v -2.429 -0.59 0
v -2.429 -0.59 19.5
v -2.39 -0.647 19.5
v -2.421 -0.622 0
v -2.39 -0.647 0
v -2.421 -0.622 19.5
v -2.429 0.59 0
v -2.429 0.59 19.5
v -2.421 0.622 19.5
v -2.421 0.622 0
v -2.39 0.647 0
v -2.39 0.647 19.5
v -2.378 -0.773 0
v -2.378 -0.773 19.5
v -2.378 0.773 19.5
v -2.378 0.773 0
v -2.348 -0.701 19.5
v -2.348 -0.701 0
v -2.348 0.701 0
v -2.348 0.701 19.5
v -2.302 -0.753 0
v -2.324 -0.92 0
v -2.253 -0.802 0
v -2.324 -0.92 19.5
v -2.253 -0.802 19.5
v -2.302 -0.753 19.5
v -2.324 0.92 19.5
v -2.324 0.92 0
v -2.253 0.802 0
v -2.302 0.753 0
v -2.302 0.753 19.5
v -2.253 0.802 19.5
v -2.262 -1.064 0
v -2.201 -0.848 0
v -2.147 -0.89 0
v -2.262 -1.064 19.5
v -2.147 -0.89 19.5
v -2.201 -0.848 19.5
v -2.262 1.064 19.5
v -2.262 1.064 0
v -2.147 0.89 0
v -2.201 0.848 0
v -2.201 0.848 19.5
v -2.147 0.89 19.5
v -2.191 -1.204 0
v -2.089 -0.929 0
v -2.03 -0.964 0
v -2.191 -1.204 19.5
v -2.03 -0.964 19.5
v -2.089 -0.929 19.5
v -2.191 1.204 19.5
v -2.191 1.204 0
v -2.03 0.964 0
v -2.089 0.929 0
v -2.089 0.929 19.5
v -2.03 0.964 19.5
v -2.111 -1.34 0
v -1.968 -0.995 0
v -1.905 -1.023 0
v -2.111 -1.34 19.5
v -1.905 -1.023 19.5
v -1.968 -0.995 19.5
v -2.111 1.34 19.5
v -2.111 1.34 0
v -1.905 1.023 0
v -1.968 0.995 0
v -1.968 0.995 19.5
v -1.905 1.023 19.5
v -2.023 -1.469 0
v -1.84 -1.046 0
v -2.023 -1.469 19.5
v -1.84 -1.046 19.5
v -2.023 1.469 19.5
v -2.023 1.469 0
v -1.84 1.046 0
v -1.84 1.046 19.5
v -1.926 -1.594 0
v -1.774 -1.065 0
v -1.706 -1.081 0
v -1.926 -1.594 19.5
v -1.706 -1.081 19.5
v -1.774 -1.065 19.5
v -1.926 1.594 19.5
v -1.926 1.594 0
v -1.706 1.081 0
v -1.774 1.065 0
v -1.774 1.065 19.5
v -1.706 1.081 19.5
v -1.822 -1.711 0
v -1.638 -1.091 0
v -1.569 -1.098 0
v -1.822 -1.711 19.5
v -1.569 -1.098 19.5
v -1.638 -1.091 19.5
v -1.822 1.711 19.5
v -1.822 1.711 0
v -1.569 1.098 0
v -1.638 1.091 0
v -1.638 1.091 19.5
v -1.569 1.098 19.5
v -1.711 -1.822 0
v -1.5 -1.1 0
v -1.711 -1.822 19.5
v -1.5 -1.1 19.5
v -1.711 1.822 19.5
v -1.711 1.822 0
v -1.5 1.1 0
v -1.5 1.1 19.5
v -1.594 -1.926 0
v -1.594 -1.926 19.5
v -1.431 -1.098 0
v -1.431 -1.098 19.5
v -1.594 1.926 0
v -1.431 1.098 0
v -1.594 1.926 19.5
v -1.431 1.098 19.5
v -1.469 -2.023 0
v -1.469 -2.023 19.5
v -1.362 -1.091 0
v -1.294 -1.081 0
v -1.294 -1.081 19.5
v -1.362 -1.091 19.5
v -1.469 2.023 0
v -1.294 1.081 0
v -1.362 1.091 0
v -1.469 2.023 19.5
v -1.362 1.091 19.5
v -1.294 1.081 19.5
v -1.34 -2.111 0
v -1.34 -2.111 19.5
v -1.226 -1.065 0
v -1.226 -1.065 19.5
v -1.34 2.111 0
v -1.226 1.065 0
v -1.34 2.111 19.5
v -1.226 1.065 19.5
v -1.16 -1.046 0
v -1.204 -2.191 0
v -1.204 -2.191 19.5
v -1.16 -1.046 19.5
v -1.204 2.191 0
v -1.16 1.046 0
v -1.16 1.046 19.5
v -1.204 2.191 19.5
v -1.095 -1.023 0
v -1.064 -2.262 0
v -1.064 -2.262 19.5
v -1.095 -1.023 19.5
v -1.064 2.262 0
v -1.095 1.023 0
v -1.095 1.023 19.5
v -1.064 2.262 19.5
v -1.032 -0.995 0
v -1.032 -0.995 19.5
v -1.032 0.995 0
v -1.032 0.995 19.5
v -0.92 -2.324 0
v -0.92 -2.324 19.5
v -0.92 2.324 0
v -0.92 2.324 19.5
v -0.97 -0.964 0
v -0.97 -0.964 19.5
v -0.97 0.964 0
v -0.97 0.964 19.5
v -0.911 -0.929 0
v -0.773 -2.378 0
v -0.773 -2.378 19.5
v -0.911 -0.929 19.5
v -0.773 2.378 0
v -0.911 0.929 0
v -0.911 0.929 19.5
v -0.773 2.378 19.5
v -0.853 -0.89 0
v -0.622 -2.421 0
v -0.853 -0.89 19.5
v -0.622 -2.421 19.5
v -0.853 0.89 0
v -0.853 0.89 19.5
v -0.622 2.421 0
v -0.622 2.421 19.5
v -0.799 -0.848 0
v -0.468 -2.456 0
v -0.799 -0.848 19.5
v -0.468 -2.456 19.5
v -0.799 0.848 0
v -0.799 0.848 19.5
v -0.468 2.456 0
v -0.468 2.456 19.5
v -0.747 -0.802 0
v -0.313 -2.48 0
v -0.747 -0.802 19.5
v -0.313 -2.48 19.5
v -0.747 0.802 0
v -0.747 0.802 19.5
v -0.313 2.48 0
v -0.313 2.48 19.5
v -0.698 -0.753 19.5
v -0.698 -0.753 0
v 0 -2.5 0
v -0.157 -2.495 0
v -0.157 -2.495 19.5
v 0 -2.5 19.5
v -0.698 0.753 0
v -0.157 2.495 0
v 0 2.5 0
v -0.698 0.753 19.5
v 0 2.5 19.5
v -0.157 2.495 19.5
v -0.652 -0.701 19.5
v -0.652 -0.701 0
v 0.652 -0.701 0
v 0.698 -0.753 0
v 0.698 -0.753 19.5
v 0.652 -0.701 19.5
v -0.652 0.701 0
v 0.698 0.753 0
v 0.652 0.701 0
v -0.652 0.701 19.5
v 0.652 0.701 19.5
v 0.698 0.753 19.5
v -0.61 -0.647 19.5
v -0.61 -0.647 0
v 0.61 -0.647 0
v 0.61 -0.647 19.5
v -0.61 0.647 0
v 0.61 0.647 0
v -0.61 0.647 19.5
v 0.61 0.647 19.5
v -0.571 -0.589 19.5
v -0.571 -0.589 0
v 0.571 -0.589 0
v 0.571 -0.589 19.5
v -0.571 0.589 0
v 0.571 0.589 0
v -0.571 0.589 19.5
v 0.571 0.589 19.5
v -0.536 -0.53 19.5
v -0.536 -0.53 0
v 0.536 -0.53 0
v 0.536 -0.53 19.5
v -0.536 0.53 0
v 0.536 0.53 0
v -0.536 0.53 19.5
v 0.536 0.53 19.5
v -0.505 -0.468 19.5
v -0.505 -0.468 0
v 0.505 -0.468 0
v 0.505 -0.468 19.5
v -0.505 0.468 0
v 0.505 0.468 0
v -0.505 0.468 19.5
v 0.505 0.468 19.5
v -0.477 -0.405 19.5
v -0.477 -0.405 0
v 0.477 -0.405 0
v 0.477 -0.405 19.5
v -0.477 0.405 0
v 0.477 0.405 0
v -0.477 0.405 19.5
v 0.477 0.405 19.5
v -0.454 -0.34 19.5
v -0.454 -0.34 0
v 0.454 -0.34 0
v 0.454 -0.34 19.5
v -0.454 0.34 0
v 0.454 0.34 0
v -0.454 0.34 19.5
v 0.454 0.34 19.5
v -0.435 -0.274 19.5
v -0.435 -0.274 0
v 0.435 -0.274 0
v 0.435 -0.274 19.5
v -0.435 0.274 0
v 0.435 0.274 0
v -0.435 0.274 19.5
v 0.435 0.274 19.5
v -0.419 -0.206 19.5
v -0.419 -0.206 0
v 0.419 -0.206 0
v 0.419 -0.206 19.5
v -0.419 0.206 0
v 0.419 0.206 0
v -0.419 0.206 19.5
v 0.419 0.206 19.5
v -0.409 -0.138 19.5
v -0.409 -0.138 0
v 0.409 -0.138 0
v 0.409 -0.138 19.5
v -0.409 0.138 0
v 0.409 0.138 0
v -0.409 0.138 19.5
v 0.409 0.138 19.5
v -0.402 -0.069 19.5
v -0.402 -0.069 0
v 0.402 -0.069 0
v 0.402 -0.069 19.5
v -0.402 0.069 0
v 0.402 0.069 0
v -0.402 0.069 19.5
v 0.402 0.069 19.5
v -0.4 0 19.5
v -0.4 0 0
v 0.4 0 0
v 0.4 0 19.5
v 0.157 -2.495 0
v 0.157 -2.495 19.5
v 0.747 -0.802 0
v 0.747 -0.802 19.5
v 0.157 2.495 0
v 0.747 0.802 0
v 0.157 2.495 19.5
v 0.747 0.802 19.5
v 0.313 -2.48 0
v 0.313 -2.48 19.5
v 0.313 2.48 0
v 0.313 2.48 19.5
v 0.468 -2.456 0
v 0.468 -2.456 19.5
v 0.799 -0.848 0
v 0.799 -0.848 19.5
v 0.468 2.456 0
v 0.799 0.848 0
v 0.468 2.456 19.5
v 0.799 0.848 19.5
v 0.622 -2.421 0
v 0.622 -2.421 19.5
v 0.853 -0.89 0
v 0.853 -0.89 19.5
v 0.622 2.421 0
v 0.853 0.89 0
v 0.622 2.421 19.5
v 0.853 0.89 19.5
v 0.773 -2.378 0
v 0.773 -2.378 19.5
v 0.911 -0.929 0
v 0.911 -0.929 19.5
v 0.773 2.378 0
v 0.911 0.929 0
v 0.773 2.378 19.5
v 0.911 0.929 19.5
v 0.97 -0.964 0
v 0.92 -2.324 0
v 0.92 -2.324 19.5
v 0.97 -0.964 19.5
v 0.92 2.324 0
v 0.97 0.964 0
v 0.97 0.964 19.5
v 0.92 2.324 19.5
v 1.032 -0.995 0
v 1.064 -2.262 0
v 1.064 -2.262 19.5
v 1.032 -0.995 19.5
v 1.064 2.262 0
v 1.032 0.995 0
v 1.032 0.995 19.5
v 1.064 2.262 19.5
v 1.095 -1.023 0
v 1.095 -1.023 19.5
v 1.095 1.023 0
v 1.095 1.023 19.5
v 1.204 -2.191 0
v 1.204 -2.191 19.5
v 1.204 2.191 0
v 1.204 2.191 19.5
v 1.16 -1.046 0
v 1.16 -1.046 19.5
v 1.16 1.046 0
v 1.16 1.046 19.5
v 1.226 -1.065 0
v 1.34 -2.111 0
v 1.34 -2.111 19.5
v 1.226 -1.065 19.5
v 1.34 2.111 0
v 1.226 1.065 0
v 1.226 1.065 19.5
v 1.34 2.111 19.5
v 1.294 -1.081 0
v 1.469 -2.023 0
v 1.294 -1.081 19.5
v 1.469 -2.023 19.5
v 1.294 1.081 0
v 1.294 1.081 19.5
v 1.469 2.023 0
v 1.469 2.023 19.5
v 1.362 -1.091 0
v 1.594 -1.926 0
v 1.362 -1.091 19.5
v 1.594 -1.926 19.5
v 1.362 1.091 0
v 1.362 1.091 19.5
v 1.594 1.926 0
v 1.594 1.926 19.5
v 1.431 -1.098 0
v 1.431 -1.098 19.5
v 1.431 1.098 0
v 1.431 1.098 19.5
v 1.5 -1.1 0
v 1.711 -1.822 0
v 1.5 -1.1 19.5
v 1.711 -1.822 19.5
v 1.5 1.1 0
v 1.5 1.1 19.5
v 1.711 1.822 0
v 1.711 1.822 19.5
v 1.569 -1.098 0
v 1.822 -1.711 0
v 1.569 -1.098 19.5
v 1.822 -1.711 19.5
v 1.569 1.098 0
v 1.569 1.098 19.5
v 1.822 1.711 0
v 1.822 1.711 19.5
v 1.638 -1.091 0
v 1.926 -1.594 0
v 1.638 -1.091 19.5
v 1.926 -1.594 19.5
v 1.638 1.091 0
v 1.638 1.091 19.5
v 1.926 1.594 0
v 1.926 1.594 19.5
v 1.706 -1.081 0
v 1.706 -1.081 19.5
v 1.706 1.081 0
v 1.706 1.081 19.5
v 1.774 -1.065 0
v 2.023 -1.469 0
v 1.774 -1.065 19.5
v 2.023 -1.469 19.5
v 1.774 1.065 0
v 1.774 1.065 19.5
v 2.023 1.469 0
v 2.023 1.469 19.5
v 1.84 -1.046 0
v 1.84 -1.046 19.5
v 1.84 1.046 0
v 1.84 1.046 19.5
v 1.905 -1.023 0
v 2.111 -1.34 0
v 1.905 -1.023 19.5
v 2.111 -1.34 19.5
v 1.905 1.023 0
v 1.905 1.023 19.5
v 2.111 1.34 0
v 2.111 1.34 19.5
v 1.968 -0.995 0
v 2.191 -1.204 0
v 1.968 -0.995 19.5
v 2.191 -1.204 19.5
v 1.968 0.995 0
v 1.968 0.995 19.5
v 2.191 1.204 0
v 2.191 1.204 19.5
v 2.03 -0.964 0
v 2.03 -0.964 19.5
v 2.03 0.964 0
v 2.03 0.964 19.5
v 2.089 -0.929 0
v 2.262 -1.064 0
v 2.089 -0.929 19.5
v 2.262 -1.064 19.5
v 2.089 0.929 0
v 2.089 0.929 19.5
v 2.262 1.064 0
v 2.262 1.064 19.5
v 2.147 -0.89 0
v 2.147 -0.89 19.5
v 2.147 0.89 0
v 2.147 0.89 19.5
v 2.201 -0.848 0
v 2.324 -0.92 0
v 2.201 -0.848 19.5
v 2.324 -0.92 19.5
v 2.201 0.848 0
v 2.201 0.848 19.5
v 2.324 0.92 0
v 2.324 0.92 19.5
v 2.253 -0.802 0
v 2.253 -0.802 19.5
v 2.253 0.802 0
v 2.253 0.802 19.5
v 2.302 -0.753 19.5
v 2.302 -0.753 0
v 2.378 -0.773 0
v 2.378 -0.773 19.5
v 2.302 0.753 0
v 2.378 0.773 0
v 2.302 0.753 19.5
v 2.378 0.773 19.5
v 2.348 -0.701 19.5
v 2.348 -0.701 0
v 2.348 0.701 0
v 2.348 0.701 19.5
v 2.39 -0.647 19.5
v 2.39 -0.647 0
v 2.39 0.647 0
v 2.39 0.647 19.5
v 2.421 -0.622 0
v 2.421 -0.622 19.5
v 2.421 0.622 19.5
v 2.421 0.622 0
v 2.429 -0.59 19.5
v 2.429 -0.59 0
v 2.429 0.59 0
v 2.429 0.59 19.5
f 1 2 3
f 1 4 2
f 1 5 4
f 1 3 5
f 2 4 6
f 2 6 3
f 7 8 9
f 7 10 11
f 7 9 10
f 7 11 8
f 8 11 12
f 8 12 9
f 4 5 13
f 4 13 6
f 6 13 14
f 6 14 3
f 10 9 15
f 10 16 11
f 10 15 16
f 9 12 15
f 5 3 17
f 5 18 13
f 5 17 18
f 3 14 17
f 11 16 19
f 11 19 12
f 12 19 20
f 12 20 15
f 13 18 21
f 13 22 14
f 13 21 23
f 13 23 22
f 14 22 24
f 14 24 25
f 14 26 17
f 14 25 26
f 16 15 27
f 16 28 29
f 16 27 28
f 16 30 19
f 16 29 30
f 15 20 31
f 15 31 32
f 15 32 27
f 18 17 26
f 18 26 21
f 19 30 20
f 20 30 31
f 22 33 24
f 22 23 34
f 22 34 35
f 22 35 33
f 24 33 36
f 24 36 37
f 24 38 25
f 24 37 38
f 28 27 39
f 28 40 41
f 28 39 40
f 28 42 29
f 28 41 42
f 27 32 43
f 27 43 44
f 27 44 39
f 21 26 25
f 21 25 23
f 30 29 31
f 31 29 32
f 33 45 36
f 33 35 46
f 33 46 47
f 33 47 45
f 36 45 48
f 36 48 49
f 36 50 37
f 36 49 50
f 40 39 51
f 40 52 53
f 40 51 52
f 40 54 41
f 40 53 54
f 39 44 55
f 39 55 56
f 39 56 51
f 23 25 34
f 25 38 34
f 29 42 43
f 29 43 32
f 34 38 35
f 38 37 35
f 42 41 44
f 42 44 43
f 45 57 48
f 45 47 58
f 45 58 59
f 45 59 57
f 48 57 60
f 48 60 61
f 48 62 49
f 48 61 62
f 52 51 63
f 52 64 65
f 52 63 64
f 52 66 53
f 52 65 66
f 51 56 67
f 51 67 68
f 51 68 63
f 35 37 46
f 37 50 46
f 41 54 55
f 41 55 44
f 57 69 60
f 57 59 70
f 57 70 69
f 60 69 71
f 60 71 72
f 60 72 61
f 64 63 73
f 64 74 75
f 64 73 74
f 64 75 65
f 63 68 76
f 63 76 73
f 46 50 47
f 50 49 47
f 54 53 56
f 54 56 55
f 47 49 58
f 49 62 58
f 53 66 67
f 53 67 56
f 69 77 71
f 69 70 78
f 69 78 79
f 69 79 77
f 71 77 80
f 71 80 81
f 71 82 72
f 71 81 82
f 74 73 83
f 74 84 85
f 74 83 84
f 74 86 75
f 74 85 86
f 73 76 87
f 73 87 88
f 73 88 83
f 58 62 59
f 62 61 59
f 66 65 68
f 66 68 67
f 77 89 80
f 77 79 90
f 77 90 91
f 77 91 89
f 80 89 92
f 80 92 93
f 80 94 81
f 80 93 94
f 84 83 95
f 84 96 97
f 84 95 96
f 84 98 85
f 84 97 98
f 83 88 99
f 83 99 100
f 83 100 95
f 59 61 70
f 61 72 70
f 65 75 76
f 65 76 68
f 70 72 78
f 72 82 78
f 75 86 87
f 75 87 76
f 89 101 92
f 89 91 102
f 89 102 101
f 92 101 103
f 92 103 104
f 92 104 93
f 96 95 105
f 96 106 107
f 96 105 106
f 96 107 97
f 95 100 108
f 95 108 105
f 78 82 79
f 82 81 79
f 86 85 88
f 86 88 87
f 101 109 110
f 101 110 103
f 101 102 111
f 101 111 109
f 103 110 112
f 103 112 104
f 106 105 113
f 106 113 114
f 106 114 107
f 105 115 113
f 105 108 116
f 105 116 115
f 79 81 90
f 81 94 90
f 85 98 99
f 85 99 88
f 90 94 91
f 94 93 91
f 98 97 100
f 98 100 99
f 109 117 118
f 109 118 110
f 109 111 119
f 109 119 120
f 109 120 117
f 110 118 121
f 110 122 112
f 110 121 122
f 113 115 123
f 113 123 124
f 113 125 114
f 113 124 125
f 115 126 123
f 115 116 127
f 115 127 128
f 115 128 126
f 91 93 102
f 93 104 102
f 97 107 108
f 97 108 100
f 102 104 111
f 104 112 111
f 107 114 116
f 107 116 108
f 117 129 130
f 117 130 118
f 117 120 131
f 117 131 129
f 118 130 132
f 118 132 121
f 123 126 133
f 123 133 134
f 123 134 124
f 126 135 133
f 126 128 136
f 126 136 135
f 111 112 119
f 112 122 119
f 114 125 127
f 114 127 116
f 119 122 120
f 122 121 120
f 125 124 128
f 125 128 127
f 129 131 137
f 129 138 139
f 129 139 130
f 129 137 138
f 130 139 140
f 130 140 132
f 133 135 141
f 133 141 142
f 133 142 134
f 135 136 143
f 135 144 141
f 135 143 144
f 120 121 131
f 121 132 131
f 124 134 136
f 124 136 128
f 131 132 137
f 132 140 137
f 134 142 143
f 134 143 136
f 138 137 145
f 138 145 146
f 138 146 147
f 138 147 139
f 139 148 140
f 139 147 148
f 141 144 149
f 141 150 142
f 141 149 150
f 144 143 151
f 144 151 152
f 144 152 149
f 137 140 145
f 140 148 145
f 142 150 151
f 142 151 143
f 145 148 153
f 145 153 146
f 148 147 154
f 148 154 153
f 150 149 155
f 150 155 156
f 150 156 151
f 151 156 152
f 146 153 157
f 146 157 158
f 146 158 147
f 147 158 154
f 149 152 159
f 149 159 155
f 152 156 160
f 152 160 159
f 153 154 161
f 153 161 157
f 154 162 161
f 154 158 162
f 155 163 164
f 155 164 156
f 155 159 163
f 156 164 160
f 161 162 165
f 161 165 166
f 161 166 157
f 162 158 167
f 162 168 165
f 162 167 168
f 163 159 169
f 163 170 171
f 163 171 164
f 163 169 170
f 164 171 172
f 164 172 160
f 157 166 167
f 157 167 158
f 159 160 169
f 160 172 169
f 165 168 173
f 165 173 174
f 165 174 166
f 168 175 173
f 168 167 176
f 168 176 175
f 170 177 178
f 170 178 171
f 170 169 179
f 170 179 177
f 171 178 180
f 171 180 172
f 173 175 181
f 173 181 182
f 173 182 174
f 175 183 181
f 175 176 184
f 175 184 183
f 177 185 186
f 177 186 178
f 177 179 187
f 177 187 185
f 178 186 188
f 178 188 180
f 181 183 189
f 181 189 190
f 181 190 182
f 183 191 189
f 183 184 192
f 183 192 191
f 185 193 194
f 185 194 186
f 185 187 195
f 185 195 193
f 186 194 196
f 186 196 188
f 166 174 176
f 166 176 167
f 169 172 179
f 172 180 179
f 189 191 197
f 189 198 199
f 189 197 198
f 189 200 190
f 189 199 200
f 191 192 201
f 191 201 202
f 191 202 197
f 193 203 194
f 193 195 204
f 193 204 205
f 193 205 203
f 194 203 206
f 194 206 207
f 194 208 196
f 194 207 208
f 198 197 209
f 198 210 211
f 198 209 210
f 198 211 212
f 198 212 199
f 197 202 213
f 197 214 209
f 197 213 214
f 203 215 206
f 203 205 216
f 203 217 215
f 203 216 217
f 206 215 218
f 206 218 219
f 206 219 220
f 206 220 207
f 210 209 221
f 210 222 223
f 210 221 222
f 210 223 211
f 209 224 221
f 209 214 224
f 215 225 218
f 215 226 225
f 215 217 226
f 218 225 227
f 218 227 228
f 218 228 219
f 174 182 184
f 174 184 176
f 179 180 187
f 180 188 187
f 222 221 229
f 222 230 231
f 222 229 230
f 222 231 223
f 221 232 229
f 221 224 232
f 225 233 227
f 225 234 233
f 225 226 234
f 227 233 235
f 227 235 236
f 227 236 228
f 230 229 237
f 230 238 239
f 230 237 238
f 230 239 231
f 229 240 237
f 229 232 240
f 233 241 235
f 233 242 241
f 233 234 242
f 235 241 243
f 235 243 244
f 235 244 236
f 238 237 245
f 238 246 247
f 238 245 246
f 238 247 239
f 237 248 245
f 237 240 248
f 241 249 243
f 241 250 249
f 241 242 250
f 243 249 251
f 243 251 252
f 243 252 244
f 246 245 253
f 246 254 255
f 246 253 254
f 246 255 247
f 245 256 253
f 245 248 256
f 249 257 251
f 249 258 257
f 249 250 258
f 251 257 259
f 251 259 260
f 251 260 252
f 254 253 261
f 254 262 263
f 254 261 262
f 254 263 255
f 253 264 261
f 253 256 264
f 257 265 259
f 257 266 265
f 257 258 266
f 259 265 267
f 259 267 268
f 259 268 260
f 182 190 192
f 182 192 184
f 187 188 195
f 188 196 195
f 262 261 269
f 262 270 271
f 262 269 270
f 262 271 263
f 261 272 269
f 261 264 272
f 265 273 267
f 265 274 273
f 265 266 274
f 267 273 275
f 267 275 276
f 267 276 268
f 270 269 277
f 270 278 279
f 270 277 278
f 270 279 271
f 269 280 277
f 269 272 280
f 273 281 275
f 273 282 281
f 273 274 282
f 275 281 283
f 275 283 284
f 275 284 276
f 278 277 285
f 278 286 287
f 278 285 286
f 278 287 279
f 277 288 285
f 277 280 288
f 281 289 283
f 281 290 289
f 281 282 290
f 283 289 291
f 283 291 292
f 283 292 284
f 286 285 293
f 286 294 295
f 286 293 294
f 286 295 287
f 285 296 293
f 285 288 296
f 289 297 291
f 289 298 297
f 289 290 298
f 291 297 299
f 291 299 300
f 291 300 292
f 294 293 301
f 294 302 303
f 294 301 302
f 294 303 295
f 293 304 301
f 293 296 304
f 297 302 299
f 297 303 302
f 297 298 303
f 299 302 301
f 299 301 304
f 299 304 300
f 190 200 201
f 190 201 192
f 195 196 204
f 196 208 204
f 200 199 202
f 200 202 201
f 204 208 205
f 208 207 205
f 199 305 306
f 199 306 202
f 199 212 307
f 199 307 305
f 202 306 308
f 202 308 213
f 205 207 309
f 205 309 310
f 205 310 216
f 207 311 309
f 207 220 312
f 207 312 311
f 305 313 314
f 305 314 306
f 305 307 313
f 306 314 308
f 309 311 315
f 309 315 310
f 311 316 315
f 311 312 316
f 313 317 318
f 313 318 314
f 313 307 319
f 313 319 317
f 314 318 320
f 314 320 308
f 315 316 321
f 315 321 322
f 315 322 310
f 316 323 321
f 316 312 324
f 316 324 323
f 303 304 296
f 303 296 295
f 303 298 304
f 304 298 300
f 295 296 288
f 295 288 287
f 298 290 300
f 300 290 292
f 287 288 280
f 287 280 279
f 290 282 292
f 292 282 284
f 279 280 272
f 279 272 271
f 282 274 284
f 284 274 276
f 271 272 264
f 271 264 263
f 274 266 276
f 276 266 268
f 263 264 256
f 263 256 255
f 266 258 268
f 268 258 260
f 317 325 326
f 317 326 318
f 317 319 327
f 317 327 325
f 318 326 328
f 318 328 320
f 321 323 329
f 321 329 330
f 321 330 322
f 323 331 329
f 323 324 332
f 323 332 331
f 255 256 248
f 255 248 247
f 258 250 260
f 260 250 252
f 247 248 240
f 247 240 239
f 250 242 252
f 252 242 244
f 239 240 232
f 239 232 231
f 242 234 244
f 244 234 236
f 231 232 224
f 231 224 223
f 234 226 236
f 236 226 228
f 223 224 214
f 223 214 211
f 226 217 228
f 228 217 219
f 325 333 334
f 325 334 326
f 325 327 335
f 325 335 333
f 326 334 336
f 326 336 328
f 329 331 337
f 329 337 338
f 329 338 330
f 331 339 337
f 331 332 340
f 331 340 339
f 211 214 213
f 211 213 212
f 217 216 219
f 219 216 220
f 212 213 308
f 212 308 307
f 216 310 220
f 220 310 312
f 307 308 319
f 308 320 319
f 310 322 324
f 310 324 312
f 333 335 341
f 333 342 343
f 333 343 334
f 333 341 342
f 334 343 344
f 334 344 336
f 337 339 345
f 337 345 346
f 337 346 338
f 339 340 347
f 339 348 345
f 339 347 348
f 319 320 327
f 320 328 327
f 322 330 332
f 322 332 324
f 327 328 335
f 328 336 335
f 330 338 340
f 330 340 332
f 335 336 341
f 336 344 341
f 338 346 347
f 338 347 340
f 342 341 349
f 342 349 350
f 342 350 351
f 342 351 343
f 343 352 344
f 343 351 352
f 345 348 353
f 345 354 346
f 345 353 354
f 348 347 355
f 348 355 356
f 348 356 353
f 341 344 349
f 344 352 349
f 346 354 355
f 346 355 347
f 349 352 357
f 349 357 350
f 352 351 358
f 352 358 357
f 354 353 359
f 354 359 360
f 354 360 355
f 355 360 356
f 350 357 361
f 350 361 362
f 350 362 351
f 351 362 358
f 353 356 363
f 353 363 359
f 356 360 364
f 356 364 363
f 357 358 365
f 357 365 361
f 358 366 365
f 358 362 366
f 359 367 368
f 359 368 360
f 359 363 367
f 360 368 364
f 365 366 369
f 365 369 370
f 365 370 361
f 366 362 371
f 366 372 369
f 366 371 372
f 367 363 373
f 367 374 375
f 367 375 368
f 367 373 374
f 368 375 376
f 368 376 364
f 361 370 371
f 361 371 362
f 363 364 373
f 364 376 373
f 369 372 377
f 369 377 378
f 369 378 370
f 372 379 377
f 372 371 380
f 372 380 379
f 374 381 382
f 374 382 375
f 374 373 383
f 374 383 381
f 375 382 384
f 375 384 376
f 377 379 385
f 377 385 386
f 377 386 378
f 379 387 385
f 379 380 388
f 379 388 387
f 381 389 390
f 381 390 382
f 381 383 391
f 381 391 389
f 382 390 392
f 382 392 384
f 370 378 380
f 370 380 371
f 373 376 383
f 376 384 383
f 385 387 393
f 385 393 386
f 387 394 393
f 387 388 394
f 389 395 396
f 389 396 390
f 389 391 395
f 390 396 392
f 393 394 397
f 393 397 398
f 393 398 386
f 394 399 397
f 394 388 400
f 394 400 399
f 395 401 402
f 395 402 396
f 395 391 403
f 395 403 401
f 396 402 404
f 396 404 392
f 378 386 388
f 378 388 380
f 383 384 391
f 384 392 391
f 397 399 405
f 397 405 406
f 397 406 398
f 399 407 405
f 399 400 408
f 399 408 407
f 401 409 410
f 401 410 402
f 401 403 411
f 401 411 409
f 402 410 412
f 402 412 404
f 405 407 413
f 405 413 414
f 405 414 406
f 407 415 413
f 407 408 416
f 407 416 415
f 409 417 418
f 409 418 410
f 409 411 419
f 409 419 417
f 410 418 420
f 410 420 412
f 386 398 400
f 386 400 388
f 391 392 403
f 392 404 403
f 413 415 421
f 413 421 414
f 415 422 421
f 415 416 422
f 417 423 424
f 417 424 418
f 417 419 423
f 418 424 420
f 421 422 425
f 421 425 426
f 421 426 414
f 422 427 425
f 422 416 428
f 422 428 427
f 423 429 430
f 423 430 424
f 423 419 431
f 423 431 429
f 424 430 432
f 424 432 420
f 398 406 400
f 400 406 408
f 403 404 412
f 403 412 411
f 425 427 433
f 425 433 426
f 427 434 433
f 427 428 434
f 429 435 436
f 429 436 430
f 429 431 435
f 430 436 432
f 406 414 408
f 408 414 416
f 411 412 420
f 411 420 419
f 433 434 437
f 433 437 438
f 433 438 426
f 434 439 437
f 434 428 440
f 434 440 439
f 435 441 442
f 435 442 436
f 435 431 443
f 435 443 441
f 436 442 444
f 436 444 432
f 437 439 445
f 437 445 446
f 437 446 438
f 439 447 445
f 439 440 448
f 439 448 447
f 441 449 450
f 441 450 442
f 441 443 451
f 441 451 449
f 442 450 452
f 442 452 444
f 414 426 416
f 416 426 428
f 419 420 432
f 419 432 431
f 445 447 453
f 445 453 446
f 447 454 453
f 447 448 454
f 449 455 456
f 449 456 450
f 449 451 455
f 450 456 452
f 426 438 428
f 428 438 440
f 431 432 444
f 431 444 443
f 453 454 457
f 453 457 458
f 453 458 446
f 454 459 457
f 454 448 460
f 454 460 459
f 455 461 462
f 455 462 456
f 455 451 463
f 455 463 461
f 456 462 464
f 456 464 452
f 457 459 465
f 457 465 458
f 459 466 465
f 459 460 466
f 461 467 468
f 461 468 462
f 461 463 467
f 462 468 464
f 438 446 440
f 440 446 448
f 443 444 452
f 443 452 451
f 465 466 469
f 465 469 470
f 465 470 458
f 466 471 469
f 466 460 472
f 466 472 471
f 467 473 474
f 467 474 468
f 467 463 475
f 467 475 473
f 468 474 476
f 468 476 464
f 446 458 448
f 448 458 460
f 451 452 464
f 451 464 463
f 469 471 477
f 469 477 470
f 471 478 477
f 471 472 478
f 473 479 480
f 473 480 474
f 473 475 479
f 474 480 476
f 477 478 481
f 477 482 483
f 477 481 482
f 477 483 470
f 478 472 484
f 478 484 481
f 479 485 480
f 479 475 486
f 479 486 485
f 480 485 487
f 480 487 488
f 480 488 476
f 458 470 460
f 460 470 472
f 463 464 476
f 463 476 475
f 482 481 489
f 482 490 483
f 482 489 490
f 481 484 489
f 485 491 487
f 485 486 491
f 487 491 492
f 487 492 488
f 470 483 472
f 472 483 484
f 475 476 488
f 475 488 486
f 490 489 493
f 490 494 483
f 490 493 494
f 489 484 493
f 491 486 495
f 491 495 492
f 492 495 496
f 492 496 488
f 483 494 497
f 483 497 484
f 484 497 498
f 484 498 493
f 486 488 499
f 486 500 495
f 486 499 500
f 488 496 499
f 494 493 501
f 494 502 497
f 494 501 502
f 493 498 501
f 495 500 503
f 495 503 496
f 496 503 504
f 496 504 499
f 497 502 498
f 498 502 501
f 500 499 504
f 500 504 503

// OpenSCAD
difference(){
//Big Cylinder
translate([0,0,0])
cylinder(19.5,2.5,2.5);

//Small cylinder 1
translate ([1.5,0,12])
cylinder(26,1.1,1.1,center=true);
//Small Cube 1
translate ([2,0,0])
cube([1,0.6,49],center=true);
    
//Big cylinder 2
translate ([-1.5,0,12])
cylinder(26,1.1,1.1,center=true);

//Small Cube 2

translate ([-2,0,0])
cube([1,0.6,49],center=true);
}
$fn=100;
